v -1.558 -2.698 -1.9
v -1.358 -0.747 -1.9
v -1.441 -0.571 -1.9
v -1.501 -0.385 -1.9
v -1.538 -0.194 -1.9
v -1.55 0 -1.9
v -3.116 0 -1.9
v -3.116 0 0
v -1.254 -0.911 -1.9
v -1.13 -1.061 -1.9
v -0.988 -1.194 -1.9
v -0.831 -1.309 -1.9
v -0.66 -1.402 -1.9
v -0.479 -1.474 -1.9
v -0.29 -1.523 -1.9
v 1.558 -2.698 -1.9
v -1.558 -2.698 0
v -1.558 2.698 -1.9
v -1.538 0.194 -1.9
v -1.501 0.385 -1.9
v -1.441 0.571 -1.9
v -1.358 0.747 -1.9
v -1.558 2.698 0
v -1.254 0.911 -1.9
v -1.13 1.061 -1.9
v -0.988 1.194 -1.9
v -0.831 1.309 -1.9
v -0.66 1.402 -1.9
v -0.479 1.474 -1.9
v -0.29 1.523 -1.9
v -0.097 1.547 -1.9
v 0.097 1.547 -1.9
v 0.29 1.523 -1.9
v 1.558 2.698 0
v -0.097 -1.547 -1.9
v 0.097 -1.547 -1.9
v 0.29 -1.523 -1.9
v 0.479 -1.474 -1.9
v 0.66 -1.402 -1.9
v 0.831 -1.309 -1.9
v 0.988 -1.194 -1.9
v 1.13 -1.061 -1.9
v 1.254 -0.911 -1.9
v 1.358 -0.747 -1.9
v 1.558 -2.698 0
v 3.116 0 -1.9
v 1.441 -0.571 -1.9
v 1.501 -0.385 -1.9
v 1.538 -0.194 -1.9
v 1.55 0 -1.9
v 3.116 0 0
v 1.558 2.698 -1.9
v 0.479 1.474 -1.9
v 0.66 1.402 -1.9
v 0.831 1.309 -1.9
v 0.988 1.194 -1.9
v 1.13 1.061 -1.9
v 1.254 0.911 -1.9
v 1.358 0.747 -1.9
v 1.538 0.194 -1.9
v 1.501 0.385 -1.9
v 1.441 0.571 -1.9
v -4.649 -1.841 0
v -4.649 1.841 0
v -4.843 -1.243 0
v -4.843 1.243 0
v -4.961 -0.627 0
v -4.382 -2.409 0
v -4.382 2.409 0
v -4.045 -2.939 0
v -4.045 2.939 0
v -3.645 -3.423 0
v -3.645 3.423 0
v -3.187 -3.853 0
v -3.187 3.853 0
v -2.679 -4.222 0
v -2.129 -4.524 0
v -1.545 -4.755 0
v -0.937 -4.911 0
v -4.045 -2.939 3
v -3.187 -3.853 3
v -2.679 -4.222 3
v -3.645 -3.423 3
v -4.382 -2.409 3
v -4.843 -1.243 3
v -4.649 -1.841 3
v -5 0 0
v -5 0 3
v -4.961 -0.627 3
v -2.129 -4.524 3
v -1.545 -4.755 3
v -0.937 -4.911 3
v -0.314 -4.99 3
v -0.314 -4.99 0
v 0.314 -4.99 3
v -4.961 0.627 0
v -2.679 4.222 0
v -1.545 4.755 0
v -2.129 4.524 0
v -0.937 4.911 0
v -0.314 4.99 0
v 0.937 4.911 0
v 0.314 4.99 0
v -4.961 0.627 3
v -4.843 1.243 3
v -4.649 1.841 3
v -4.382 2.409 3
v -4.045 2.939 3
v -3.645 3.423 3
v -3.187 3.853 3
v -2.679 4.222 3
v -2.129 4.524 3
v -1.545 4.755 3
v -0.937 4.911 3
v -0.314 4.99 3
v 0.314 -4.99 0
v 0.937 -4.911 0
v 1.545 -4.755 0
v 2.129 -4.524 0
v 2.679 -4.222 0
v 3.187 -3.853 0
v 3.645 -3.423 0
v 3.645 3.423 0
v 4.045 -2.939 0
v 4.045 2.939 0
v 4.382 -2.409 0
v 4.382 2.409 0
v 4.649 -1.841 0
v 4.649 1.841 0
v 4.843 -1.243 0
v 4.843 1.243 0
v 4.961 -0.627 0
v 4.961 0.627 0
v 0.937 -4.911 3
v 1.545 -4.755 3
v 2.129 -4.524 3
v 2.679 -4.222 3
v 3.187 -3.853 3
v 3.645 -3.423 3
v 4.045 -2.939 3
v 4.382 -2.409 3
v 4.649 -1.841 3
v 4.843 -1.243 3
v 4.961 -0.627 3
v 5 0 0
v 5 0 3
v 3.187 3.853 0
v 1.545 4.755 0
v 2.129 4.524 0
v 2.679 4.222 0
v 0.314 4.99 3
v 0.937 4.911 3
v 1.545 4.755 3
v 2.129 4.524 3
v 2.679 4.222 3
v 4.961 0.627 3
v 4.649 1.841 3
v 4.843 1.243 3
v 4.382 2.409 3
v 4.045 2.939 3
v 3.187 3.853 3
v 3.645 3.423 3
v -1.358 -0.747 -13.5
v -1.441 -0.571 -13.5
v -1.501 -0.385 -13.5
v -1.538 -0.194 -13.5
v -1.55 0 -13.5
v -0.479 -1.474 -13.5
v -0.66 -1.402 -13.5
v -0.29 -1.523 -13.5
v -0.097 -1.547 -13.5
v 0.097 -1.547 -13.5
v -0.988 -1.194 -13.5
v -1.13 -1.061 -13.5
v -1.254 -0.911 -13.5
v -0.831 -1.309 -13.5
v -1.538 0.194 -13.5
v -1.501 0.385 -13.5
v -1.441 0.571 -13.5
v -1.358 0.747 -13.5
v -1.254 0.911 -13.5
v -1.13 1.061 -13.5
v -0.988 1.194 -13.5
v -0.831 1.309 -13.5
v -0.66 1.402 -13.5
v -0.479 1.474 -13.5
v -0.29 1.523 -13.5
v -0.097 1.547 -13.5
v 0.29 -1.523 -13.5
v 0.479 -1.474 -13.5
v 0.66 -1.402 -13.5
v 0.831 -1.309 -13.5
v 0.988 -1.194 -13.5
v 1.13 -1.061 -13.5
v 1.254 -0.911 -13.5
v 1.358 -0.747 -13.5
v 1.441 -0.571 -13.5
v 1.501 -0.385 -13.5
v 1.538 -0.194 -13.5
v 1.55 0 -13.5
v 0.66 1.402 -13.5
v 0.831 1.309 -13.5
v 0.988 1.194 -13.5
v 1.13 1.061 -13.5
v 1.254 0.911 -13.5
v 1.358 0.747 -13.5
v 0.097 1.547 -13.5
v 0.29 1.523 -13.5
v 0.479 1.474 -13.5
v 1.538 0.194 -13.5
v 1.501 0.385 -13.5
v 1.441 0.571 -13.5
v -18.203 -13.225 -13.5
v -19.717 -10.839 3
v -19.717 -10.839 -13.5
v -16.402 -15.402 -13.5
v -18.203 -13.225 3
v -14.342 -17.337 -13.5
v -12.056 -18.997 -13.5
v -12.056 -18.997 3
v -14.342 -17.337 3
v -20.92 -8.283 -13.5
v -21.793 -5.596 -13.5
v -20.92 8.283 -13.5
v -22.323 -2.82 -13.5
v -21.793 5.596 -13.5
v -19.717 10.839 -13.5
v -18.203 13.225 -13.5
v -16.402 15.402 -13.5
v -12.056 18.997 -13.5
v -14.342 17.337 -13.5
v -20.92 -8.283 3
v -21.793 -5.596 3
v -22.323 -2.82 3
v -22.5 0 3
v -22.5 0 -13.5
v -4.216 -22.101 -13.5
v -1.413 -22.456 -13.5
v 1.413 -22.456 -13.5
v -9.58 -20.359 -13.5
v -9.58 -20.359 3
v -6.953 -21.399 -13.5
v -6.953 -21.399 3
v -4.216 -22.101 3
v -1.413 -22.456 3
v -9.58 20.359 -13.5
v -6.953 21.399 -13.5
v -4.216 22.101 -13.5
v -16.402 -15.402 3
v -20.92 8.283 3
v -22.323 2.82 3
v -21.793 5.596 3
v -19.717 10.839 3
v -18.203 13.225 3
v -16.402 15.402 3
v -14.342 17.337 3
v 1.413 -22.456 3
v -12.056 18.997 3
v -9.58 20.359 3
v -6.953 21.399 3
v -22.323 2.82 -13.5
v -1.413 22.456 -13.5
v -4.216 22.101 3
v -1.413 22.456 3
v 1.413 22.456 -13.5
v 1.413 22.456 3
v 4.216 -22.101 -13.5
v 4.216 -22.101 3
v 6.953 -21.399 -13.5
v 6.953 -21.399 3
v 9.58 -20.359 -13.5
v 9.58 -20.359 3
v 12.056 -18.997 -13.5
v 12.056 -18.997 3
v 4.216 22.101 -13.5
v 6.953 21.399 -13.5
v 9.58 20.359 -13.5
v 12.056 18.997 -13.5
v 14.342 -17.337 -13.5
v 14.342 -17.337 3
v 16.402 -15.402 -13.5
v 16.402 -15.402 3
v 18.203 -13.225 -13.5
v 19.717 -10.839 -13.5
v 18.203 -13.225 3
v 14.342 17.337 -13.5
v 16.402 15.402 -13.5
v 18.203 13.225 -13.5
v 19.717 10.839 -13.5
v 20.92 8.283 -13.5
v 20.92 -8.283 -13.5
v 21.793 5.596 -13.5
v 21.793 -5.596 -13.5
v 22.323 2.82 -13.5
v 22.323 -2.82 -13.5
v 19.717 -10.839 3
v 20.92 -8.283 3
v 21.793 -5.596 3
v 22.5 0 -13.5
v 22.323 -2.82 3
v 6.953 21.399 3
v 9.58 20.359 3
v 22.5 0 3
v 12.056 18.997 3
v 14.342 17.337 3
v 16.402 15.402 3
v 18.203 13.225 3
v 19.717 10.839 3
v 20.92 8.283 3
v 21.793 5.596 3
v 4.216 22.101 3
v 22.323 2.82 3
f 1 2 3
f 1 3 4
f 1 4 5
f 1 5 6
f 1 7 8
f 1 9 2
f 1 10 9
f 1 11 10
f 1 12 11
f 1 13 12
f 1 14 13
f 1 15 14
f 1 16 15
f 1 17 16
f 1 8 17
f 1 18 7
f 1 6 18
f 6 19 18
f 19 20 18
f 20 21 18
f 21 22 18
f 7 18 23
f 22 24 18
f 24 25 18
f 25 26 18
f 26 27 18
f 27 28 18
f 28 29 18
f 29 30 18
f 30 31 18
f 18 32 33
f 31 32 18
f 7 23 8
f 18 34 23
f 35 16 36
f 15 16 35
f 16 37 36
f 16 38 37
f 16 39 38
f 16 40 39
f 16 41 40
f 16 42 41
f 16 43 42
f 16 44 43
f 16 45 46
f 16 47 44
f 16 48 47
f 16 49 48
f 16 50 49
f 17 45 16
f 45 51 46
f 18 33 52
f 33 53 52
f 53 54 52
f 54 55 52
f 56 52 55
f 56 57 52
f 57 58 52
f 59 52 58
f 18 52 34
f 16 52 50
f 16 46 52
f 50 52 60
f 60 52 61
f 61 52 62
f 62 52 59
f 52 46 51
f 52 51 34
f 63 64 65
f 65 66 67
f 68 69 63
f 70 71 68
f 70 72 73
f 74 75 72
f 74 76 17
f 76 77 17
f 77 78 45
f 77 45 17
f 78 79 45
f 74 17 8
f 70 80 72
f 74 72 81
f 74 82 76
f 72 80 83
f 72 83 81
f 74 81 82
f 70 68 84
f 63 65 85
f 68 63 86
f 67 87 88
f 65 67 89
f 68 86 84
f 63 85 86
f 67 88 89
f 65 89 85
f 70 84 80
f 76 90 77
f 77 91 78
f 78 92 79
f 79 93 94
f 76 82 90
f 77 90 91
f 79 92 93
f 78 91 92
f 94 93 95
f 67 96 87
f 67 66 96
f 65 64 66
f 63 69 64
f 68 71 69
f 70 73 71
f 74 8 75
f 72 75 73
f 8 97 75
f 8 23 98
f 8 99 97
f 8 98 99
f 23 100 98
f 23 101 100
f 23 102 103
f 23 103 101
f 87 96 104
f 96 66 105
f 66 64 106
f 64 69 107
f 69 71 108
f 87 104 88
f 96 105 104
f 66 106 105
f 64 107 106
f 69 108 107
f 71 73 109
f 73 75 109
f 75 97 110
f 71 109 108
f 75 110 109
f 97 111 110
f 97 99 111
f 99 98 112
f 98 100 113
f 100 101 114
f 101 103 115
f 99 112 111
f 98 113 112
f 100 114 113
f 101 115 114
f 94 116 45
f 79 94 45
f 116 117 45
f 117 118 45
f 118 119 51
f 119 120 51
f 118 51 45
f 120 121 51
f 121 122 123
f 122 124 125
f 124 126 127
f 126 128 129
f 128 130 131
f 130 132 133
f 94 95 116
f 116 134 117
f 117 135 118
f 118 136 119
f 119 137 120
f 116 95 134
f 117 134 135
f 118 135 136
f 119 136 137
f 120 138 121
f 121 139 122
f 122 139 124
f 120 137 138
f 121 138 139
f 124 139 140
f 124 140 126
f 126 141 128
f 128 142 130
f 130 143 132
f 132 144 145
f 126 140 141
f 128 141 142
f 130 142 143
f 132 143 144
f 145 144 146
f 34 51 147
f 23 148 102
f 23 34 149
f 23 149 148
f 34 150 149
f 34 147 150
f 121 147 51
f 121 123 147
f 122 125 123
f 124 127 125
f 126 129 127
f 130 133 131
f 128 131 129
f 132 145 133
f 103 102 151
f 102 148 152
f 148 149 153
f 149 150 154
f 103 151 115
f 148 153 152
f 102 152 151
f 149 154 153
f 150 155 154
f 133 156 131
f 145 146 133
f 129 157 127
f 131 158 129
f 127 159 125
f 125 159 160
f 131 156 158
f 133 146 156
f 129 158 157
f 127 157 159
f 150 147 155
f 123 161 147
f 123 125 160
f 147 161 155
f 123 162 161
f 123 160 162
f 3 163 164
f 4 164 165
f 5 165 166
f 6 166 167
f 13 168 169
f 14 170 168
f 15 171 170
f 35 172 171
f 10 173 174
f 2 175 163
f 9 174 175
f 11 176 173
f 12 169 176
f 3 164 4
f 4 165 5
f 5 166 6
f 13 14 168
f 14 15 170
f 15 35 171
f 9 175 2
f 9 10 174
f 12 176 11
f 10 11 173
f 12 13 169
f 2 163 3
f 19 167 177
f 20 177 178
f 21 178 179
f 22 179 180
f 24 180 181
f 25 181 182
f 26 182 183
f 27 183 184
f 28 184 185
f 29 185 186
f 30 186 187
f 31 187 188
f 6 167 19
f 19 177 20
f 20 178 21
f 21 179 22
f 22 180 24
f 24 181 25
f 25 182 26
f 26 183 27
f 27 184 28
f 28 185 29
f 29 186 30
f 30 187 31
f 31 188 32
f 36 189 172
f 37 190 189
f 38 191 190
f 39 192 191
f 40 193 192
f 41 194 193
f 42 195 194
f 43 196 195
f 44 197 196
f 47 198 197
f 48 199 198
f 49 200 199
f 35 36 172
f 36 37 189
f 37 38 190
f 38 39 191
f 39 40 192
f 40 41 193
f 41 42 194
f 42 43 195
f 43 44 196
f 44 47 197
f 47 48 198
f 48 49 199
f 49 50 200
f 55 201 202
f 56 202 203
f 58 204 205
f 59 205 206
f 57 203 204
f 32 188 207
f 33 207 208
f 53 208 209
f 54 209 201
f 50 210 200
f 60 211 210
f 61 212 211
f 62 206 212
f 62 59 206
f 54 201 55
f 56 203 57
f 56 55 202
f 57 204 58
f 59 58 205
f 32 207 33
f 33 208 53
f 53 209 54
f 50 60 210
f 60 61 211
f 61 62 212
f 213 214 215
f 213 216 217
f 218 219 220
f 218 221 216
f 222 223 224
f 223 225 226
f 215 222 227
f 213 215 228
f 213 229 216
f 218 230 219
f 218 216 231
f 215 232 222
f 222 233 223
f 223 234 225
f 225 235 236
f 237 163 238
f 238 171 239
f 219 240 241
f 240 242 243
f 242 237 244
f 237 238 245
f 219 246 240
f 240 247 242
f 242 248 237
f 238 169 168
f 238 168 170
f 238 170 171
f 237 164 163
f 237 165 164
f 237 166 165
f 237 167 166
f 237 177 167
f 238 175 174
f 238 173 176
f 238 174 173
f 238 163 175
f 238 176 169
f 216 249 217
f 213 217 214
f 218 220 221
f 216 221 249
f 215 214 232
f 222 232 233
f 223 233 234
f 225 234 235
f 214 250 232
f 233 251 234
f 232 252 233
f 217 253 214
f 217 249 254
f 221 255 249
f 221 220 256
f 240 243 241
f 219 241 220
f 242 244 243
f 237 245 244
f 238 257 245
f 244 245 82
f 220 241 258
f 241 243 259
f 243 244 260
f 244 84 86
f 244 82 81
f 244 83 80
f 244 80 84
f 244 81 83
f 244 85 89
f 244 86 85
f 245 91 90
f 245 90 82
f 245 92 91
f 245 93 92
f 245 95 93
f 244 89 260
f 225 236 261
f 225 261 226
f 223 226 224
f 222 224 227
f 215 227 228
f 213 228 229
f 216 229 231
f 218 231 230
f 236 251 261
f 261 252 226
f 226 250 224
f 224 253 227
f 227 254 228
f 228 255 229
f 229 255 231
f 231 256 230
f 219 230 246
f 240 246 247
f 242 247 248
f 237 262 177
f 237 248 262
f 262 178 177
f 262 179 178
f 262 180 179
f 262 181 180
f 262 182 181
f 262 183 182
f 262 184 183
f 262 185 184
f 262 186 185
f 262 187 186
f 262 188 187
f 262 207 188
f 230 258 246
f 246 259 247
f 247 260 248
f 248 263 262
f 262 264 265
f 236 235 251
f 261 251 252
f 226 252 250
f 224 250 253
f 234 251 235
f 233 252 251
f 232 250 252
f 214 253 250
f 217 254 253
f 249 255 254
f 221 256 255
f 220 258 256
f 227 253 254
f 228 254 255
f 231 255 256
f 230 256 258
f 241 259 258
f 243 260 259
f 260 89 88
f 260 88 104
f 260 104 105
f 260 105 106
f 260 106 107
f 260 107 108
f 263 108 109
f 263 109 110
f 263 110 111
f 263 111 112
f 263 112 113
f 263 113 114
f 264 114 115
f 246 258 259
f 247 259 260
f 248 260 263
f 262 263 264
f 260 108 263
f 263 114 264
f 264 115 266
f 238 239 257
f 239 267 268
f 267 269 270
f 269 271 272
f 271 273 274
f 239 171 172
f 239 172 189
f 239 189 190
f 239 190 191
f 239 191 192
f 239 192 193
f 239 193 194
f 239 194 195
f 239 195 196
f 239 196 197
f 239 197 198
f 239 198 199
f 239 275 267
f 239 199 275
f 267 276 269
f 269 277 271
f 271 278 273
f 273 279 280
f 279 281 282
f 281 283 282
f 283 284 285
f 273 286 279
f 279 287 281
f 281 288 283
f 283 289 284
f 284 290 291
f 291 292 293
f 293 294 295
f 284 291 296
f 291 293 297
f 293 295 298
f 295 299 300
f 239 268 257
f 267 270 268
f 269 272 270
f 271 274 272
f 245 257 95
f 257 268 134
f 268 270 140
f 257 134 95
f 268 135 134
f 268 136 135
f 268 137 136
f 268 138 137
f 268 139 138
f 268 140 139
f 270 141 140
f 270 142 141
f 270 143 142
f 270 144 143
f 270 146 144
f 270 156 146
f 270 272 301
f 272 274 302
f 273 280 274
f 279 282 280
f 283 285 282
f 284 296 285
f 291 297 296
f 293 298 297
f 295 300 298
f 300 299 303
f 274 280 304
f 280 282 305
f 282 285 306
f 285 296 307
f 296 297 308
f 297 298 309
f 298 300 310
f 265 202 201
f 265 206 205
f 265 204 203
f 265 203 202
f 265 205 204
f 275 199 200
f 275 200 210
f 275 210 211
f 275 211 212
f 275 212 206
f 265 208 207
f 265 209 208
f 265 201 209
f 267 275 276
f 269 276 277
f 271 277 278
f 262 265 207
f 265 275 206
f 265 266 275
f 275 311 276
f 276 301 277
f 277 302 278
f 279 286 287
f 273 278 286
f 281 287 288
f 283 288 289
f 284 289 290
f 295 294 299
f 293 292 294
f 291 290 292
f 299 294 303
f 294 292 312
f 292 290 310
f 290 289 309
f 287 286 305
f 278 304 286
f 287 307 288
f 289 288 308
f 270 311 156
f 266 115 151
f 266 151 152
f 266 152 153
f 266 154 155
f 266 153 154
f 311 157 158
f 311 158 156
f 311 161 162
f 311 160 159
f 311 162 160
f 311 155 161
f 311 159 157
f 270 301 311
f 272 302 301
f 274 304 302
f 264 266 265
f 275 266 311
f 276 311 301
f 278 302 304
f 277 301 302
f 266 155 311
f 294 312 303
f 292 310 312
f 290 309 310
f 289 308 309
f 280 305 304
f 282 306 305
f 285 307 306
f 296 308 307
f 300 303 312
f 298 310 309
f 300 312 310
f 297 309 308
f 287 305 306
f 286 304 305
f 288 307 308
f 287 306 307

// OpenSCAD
$fn = 50;


difference() {
	union() {
		translate(v = [0, 0, -13.5000000000]) {
			cylinder(h = 16.5000000000, r = 22.5000000000);
		}
	}
	union() {
		translate(v = [0, 0, 0]) {
			rotate(a = [0, 0, 0]) {
				difference() {
					union() {
						translate(v = [0, 0, -1.9000000000]) {
							linear_extrude(height = 1.9000000000) {
								polygon(points = [[3.1158000000, 0.0000000000], [1.5579000000, 2.6983619531], [-1.5579000000, 2.6983619531], [-3.1158000000, 0.0000000000], [-1.5579000000, -2.6983619531], [1.5579000000, -2.6983619531]]);
							}
						}
					}
					union();
				}
			}
		}
		#cylinder(h = 3, r = 5.0000000000);
		#translate(v = [0, 0, -100.0000000000]) {
			cylinder(h = 200, r = 1.5500000000);
		}
	}
}
